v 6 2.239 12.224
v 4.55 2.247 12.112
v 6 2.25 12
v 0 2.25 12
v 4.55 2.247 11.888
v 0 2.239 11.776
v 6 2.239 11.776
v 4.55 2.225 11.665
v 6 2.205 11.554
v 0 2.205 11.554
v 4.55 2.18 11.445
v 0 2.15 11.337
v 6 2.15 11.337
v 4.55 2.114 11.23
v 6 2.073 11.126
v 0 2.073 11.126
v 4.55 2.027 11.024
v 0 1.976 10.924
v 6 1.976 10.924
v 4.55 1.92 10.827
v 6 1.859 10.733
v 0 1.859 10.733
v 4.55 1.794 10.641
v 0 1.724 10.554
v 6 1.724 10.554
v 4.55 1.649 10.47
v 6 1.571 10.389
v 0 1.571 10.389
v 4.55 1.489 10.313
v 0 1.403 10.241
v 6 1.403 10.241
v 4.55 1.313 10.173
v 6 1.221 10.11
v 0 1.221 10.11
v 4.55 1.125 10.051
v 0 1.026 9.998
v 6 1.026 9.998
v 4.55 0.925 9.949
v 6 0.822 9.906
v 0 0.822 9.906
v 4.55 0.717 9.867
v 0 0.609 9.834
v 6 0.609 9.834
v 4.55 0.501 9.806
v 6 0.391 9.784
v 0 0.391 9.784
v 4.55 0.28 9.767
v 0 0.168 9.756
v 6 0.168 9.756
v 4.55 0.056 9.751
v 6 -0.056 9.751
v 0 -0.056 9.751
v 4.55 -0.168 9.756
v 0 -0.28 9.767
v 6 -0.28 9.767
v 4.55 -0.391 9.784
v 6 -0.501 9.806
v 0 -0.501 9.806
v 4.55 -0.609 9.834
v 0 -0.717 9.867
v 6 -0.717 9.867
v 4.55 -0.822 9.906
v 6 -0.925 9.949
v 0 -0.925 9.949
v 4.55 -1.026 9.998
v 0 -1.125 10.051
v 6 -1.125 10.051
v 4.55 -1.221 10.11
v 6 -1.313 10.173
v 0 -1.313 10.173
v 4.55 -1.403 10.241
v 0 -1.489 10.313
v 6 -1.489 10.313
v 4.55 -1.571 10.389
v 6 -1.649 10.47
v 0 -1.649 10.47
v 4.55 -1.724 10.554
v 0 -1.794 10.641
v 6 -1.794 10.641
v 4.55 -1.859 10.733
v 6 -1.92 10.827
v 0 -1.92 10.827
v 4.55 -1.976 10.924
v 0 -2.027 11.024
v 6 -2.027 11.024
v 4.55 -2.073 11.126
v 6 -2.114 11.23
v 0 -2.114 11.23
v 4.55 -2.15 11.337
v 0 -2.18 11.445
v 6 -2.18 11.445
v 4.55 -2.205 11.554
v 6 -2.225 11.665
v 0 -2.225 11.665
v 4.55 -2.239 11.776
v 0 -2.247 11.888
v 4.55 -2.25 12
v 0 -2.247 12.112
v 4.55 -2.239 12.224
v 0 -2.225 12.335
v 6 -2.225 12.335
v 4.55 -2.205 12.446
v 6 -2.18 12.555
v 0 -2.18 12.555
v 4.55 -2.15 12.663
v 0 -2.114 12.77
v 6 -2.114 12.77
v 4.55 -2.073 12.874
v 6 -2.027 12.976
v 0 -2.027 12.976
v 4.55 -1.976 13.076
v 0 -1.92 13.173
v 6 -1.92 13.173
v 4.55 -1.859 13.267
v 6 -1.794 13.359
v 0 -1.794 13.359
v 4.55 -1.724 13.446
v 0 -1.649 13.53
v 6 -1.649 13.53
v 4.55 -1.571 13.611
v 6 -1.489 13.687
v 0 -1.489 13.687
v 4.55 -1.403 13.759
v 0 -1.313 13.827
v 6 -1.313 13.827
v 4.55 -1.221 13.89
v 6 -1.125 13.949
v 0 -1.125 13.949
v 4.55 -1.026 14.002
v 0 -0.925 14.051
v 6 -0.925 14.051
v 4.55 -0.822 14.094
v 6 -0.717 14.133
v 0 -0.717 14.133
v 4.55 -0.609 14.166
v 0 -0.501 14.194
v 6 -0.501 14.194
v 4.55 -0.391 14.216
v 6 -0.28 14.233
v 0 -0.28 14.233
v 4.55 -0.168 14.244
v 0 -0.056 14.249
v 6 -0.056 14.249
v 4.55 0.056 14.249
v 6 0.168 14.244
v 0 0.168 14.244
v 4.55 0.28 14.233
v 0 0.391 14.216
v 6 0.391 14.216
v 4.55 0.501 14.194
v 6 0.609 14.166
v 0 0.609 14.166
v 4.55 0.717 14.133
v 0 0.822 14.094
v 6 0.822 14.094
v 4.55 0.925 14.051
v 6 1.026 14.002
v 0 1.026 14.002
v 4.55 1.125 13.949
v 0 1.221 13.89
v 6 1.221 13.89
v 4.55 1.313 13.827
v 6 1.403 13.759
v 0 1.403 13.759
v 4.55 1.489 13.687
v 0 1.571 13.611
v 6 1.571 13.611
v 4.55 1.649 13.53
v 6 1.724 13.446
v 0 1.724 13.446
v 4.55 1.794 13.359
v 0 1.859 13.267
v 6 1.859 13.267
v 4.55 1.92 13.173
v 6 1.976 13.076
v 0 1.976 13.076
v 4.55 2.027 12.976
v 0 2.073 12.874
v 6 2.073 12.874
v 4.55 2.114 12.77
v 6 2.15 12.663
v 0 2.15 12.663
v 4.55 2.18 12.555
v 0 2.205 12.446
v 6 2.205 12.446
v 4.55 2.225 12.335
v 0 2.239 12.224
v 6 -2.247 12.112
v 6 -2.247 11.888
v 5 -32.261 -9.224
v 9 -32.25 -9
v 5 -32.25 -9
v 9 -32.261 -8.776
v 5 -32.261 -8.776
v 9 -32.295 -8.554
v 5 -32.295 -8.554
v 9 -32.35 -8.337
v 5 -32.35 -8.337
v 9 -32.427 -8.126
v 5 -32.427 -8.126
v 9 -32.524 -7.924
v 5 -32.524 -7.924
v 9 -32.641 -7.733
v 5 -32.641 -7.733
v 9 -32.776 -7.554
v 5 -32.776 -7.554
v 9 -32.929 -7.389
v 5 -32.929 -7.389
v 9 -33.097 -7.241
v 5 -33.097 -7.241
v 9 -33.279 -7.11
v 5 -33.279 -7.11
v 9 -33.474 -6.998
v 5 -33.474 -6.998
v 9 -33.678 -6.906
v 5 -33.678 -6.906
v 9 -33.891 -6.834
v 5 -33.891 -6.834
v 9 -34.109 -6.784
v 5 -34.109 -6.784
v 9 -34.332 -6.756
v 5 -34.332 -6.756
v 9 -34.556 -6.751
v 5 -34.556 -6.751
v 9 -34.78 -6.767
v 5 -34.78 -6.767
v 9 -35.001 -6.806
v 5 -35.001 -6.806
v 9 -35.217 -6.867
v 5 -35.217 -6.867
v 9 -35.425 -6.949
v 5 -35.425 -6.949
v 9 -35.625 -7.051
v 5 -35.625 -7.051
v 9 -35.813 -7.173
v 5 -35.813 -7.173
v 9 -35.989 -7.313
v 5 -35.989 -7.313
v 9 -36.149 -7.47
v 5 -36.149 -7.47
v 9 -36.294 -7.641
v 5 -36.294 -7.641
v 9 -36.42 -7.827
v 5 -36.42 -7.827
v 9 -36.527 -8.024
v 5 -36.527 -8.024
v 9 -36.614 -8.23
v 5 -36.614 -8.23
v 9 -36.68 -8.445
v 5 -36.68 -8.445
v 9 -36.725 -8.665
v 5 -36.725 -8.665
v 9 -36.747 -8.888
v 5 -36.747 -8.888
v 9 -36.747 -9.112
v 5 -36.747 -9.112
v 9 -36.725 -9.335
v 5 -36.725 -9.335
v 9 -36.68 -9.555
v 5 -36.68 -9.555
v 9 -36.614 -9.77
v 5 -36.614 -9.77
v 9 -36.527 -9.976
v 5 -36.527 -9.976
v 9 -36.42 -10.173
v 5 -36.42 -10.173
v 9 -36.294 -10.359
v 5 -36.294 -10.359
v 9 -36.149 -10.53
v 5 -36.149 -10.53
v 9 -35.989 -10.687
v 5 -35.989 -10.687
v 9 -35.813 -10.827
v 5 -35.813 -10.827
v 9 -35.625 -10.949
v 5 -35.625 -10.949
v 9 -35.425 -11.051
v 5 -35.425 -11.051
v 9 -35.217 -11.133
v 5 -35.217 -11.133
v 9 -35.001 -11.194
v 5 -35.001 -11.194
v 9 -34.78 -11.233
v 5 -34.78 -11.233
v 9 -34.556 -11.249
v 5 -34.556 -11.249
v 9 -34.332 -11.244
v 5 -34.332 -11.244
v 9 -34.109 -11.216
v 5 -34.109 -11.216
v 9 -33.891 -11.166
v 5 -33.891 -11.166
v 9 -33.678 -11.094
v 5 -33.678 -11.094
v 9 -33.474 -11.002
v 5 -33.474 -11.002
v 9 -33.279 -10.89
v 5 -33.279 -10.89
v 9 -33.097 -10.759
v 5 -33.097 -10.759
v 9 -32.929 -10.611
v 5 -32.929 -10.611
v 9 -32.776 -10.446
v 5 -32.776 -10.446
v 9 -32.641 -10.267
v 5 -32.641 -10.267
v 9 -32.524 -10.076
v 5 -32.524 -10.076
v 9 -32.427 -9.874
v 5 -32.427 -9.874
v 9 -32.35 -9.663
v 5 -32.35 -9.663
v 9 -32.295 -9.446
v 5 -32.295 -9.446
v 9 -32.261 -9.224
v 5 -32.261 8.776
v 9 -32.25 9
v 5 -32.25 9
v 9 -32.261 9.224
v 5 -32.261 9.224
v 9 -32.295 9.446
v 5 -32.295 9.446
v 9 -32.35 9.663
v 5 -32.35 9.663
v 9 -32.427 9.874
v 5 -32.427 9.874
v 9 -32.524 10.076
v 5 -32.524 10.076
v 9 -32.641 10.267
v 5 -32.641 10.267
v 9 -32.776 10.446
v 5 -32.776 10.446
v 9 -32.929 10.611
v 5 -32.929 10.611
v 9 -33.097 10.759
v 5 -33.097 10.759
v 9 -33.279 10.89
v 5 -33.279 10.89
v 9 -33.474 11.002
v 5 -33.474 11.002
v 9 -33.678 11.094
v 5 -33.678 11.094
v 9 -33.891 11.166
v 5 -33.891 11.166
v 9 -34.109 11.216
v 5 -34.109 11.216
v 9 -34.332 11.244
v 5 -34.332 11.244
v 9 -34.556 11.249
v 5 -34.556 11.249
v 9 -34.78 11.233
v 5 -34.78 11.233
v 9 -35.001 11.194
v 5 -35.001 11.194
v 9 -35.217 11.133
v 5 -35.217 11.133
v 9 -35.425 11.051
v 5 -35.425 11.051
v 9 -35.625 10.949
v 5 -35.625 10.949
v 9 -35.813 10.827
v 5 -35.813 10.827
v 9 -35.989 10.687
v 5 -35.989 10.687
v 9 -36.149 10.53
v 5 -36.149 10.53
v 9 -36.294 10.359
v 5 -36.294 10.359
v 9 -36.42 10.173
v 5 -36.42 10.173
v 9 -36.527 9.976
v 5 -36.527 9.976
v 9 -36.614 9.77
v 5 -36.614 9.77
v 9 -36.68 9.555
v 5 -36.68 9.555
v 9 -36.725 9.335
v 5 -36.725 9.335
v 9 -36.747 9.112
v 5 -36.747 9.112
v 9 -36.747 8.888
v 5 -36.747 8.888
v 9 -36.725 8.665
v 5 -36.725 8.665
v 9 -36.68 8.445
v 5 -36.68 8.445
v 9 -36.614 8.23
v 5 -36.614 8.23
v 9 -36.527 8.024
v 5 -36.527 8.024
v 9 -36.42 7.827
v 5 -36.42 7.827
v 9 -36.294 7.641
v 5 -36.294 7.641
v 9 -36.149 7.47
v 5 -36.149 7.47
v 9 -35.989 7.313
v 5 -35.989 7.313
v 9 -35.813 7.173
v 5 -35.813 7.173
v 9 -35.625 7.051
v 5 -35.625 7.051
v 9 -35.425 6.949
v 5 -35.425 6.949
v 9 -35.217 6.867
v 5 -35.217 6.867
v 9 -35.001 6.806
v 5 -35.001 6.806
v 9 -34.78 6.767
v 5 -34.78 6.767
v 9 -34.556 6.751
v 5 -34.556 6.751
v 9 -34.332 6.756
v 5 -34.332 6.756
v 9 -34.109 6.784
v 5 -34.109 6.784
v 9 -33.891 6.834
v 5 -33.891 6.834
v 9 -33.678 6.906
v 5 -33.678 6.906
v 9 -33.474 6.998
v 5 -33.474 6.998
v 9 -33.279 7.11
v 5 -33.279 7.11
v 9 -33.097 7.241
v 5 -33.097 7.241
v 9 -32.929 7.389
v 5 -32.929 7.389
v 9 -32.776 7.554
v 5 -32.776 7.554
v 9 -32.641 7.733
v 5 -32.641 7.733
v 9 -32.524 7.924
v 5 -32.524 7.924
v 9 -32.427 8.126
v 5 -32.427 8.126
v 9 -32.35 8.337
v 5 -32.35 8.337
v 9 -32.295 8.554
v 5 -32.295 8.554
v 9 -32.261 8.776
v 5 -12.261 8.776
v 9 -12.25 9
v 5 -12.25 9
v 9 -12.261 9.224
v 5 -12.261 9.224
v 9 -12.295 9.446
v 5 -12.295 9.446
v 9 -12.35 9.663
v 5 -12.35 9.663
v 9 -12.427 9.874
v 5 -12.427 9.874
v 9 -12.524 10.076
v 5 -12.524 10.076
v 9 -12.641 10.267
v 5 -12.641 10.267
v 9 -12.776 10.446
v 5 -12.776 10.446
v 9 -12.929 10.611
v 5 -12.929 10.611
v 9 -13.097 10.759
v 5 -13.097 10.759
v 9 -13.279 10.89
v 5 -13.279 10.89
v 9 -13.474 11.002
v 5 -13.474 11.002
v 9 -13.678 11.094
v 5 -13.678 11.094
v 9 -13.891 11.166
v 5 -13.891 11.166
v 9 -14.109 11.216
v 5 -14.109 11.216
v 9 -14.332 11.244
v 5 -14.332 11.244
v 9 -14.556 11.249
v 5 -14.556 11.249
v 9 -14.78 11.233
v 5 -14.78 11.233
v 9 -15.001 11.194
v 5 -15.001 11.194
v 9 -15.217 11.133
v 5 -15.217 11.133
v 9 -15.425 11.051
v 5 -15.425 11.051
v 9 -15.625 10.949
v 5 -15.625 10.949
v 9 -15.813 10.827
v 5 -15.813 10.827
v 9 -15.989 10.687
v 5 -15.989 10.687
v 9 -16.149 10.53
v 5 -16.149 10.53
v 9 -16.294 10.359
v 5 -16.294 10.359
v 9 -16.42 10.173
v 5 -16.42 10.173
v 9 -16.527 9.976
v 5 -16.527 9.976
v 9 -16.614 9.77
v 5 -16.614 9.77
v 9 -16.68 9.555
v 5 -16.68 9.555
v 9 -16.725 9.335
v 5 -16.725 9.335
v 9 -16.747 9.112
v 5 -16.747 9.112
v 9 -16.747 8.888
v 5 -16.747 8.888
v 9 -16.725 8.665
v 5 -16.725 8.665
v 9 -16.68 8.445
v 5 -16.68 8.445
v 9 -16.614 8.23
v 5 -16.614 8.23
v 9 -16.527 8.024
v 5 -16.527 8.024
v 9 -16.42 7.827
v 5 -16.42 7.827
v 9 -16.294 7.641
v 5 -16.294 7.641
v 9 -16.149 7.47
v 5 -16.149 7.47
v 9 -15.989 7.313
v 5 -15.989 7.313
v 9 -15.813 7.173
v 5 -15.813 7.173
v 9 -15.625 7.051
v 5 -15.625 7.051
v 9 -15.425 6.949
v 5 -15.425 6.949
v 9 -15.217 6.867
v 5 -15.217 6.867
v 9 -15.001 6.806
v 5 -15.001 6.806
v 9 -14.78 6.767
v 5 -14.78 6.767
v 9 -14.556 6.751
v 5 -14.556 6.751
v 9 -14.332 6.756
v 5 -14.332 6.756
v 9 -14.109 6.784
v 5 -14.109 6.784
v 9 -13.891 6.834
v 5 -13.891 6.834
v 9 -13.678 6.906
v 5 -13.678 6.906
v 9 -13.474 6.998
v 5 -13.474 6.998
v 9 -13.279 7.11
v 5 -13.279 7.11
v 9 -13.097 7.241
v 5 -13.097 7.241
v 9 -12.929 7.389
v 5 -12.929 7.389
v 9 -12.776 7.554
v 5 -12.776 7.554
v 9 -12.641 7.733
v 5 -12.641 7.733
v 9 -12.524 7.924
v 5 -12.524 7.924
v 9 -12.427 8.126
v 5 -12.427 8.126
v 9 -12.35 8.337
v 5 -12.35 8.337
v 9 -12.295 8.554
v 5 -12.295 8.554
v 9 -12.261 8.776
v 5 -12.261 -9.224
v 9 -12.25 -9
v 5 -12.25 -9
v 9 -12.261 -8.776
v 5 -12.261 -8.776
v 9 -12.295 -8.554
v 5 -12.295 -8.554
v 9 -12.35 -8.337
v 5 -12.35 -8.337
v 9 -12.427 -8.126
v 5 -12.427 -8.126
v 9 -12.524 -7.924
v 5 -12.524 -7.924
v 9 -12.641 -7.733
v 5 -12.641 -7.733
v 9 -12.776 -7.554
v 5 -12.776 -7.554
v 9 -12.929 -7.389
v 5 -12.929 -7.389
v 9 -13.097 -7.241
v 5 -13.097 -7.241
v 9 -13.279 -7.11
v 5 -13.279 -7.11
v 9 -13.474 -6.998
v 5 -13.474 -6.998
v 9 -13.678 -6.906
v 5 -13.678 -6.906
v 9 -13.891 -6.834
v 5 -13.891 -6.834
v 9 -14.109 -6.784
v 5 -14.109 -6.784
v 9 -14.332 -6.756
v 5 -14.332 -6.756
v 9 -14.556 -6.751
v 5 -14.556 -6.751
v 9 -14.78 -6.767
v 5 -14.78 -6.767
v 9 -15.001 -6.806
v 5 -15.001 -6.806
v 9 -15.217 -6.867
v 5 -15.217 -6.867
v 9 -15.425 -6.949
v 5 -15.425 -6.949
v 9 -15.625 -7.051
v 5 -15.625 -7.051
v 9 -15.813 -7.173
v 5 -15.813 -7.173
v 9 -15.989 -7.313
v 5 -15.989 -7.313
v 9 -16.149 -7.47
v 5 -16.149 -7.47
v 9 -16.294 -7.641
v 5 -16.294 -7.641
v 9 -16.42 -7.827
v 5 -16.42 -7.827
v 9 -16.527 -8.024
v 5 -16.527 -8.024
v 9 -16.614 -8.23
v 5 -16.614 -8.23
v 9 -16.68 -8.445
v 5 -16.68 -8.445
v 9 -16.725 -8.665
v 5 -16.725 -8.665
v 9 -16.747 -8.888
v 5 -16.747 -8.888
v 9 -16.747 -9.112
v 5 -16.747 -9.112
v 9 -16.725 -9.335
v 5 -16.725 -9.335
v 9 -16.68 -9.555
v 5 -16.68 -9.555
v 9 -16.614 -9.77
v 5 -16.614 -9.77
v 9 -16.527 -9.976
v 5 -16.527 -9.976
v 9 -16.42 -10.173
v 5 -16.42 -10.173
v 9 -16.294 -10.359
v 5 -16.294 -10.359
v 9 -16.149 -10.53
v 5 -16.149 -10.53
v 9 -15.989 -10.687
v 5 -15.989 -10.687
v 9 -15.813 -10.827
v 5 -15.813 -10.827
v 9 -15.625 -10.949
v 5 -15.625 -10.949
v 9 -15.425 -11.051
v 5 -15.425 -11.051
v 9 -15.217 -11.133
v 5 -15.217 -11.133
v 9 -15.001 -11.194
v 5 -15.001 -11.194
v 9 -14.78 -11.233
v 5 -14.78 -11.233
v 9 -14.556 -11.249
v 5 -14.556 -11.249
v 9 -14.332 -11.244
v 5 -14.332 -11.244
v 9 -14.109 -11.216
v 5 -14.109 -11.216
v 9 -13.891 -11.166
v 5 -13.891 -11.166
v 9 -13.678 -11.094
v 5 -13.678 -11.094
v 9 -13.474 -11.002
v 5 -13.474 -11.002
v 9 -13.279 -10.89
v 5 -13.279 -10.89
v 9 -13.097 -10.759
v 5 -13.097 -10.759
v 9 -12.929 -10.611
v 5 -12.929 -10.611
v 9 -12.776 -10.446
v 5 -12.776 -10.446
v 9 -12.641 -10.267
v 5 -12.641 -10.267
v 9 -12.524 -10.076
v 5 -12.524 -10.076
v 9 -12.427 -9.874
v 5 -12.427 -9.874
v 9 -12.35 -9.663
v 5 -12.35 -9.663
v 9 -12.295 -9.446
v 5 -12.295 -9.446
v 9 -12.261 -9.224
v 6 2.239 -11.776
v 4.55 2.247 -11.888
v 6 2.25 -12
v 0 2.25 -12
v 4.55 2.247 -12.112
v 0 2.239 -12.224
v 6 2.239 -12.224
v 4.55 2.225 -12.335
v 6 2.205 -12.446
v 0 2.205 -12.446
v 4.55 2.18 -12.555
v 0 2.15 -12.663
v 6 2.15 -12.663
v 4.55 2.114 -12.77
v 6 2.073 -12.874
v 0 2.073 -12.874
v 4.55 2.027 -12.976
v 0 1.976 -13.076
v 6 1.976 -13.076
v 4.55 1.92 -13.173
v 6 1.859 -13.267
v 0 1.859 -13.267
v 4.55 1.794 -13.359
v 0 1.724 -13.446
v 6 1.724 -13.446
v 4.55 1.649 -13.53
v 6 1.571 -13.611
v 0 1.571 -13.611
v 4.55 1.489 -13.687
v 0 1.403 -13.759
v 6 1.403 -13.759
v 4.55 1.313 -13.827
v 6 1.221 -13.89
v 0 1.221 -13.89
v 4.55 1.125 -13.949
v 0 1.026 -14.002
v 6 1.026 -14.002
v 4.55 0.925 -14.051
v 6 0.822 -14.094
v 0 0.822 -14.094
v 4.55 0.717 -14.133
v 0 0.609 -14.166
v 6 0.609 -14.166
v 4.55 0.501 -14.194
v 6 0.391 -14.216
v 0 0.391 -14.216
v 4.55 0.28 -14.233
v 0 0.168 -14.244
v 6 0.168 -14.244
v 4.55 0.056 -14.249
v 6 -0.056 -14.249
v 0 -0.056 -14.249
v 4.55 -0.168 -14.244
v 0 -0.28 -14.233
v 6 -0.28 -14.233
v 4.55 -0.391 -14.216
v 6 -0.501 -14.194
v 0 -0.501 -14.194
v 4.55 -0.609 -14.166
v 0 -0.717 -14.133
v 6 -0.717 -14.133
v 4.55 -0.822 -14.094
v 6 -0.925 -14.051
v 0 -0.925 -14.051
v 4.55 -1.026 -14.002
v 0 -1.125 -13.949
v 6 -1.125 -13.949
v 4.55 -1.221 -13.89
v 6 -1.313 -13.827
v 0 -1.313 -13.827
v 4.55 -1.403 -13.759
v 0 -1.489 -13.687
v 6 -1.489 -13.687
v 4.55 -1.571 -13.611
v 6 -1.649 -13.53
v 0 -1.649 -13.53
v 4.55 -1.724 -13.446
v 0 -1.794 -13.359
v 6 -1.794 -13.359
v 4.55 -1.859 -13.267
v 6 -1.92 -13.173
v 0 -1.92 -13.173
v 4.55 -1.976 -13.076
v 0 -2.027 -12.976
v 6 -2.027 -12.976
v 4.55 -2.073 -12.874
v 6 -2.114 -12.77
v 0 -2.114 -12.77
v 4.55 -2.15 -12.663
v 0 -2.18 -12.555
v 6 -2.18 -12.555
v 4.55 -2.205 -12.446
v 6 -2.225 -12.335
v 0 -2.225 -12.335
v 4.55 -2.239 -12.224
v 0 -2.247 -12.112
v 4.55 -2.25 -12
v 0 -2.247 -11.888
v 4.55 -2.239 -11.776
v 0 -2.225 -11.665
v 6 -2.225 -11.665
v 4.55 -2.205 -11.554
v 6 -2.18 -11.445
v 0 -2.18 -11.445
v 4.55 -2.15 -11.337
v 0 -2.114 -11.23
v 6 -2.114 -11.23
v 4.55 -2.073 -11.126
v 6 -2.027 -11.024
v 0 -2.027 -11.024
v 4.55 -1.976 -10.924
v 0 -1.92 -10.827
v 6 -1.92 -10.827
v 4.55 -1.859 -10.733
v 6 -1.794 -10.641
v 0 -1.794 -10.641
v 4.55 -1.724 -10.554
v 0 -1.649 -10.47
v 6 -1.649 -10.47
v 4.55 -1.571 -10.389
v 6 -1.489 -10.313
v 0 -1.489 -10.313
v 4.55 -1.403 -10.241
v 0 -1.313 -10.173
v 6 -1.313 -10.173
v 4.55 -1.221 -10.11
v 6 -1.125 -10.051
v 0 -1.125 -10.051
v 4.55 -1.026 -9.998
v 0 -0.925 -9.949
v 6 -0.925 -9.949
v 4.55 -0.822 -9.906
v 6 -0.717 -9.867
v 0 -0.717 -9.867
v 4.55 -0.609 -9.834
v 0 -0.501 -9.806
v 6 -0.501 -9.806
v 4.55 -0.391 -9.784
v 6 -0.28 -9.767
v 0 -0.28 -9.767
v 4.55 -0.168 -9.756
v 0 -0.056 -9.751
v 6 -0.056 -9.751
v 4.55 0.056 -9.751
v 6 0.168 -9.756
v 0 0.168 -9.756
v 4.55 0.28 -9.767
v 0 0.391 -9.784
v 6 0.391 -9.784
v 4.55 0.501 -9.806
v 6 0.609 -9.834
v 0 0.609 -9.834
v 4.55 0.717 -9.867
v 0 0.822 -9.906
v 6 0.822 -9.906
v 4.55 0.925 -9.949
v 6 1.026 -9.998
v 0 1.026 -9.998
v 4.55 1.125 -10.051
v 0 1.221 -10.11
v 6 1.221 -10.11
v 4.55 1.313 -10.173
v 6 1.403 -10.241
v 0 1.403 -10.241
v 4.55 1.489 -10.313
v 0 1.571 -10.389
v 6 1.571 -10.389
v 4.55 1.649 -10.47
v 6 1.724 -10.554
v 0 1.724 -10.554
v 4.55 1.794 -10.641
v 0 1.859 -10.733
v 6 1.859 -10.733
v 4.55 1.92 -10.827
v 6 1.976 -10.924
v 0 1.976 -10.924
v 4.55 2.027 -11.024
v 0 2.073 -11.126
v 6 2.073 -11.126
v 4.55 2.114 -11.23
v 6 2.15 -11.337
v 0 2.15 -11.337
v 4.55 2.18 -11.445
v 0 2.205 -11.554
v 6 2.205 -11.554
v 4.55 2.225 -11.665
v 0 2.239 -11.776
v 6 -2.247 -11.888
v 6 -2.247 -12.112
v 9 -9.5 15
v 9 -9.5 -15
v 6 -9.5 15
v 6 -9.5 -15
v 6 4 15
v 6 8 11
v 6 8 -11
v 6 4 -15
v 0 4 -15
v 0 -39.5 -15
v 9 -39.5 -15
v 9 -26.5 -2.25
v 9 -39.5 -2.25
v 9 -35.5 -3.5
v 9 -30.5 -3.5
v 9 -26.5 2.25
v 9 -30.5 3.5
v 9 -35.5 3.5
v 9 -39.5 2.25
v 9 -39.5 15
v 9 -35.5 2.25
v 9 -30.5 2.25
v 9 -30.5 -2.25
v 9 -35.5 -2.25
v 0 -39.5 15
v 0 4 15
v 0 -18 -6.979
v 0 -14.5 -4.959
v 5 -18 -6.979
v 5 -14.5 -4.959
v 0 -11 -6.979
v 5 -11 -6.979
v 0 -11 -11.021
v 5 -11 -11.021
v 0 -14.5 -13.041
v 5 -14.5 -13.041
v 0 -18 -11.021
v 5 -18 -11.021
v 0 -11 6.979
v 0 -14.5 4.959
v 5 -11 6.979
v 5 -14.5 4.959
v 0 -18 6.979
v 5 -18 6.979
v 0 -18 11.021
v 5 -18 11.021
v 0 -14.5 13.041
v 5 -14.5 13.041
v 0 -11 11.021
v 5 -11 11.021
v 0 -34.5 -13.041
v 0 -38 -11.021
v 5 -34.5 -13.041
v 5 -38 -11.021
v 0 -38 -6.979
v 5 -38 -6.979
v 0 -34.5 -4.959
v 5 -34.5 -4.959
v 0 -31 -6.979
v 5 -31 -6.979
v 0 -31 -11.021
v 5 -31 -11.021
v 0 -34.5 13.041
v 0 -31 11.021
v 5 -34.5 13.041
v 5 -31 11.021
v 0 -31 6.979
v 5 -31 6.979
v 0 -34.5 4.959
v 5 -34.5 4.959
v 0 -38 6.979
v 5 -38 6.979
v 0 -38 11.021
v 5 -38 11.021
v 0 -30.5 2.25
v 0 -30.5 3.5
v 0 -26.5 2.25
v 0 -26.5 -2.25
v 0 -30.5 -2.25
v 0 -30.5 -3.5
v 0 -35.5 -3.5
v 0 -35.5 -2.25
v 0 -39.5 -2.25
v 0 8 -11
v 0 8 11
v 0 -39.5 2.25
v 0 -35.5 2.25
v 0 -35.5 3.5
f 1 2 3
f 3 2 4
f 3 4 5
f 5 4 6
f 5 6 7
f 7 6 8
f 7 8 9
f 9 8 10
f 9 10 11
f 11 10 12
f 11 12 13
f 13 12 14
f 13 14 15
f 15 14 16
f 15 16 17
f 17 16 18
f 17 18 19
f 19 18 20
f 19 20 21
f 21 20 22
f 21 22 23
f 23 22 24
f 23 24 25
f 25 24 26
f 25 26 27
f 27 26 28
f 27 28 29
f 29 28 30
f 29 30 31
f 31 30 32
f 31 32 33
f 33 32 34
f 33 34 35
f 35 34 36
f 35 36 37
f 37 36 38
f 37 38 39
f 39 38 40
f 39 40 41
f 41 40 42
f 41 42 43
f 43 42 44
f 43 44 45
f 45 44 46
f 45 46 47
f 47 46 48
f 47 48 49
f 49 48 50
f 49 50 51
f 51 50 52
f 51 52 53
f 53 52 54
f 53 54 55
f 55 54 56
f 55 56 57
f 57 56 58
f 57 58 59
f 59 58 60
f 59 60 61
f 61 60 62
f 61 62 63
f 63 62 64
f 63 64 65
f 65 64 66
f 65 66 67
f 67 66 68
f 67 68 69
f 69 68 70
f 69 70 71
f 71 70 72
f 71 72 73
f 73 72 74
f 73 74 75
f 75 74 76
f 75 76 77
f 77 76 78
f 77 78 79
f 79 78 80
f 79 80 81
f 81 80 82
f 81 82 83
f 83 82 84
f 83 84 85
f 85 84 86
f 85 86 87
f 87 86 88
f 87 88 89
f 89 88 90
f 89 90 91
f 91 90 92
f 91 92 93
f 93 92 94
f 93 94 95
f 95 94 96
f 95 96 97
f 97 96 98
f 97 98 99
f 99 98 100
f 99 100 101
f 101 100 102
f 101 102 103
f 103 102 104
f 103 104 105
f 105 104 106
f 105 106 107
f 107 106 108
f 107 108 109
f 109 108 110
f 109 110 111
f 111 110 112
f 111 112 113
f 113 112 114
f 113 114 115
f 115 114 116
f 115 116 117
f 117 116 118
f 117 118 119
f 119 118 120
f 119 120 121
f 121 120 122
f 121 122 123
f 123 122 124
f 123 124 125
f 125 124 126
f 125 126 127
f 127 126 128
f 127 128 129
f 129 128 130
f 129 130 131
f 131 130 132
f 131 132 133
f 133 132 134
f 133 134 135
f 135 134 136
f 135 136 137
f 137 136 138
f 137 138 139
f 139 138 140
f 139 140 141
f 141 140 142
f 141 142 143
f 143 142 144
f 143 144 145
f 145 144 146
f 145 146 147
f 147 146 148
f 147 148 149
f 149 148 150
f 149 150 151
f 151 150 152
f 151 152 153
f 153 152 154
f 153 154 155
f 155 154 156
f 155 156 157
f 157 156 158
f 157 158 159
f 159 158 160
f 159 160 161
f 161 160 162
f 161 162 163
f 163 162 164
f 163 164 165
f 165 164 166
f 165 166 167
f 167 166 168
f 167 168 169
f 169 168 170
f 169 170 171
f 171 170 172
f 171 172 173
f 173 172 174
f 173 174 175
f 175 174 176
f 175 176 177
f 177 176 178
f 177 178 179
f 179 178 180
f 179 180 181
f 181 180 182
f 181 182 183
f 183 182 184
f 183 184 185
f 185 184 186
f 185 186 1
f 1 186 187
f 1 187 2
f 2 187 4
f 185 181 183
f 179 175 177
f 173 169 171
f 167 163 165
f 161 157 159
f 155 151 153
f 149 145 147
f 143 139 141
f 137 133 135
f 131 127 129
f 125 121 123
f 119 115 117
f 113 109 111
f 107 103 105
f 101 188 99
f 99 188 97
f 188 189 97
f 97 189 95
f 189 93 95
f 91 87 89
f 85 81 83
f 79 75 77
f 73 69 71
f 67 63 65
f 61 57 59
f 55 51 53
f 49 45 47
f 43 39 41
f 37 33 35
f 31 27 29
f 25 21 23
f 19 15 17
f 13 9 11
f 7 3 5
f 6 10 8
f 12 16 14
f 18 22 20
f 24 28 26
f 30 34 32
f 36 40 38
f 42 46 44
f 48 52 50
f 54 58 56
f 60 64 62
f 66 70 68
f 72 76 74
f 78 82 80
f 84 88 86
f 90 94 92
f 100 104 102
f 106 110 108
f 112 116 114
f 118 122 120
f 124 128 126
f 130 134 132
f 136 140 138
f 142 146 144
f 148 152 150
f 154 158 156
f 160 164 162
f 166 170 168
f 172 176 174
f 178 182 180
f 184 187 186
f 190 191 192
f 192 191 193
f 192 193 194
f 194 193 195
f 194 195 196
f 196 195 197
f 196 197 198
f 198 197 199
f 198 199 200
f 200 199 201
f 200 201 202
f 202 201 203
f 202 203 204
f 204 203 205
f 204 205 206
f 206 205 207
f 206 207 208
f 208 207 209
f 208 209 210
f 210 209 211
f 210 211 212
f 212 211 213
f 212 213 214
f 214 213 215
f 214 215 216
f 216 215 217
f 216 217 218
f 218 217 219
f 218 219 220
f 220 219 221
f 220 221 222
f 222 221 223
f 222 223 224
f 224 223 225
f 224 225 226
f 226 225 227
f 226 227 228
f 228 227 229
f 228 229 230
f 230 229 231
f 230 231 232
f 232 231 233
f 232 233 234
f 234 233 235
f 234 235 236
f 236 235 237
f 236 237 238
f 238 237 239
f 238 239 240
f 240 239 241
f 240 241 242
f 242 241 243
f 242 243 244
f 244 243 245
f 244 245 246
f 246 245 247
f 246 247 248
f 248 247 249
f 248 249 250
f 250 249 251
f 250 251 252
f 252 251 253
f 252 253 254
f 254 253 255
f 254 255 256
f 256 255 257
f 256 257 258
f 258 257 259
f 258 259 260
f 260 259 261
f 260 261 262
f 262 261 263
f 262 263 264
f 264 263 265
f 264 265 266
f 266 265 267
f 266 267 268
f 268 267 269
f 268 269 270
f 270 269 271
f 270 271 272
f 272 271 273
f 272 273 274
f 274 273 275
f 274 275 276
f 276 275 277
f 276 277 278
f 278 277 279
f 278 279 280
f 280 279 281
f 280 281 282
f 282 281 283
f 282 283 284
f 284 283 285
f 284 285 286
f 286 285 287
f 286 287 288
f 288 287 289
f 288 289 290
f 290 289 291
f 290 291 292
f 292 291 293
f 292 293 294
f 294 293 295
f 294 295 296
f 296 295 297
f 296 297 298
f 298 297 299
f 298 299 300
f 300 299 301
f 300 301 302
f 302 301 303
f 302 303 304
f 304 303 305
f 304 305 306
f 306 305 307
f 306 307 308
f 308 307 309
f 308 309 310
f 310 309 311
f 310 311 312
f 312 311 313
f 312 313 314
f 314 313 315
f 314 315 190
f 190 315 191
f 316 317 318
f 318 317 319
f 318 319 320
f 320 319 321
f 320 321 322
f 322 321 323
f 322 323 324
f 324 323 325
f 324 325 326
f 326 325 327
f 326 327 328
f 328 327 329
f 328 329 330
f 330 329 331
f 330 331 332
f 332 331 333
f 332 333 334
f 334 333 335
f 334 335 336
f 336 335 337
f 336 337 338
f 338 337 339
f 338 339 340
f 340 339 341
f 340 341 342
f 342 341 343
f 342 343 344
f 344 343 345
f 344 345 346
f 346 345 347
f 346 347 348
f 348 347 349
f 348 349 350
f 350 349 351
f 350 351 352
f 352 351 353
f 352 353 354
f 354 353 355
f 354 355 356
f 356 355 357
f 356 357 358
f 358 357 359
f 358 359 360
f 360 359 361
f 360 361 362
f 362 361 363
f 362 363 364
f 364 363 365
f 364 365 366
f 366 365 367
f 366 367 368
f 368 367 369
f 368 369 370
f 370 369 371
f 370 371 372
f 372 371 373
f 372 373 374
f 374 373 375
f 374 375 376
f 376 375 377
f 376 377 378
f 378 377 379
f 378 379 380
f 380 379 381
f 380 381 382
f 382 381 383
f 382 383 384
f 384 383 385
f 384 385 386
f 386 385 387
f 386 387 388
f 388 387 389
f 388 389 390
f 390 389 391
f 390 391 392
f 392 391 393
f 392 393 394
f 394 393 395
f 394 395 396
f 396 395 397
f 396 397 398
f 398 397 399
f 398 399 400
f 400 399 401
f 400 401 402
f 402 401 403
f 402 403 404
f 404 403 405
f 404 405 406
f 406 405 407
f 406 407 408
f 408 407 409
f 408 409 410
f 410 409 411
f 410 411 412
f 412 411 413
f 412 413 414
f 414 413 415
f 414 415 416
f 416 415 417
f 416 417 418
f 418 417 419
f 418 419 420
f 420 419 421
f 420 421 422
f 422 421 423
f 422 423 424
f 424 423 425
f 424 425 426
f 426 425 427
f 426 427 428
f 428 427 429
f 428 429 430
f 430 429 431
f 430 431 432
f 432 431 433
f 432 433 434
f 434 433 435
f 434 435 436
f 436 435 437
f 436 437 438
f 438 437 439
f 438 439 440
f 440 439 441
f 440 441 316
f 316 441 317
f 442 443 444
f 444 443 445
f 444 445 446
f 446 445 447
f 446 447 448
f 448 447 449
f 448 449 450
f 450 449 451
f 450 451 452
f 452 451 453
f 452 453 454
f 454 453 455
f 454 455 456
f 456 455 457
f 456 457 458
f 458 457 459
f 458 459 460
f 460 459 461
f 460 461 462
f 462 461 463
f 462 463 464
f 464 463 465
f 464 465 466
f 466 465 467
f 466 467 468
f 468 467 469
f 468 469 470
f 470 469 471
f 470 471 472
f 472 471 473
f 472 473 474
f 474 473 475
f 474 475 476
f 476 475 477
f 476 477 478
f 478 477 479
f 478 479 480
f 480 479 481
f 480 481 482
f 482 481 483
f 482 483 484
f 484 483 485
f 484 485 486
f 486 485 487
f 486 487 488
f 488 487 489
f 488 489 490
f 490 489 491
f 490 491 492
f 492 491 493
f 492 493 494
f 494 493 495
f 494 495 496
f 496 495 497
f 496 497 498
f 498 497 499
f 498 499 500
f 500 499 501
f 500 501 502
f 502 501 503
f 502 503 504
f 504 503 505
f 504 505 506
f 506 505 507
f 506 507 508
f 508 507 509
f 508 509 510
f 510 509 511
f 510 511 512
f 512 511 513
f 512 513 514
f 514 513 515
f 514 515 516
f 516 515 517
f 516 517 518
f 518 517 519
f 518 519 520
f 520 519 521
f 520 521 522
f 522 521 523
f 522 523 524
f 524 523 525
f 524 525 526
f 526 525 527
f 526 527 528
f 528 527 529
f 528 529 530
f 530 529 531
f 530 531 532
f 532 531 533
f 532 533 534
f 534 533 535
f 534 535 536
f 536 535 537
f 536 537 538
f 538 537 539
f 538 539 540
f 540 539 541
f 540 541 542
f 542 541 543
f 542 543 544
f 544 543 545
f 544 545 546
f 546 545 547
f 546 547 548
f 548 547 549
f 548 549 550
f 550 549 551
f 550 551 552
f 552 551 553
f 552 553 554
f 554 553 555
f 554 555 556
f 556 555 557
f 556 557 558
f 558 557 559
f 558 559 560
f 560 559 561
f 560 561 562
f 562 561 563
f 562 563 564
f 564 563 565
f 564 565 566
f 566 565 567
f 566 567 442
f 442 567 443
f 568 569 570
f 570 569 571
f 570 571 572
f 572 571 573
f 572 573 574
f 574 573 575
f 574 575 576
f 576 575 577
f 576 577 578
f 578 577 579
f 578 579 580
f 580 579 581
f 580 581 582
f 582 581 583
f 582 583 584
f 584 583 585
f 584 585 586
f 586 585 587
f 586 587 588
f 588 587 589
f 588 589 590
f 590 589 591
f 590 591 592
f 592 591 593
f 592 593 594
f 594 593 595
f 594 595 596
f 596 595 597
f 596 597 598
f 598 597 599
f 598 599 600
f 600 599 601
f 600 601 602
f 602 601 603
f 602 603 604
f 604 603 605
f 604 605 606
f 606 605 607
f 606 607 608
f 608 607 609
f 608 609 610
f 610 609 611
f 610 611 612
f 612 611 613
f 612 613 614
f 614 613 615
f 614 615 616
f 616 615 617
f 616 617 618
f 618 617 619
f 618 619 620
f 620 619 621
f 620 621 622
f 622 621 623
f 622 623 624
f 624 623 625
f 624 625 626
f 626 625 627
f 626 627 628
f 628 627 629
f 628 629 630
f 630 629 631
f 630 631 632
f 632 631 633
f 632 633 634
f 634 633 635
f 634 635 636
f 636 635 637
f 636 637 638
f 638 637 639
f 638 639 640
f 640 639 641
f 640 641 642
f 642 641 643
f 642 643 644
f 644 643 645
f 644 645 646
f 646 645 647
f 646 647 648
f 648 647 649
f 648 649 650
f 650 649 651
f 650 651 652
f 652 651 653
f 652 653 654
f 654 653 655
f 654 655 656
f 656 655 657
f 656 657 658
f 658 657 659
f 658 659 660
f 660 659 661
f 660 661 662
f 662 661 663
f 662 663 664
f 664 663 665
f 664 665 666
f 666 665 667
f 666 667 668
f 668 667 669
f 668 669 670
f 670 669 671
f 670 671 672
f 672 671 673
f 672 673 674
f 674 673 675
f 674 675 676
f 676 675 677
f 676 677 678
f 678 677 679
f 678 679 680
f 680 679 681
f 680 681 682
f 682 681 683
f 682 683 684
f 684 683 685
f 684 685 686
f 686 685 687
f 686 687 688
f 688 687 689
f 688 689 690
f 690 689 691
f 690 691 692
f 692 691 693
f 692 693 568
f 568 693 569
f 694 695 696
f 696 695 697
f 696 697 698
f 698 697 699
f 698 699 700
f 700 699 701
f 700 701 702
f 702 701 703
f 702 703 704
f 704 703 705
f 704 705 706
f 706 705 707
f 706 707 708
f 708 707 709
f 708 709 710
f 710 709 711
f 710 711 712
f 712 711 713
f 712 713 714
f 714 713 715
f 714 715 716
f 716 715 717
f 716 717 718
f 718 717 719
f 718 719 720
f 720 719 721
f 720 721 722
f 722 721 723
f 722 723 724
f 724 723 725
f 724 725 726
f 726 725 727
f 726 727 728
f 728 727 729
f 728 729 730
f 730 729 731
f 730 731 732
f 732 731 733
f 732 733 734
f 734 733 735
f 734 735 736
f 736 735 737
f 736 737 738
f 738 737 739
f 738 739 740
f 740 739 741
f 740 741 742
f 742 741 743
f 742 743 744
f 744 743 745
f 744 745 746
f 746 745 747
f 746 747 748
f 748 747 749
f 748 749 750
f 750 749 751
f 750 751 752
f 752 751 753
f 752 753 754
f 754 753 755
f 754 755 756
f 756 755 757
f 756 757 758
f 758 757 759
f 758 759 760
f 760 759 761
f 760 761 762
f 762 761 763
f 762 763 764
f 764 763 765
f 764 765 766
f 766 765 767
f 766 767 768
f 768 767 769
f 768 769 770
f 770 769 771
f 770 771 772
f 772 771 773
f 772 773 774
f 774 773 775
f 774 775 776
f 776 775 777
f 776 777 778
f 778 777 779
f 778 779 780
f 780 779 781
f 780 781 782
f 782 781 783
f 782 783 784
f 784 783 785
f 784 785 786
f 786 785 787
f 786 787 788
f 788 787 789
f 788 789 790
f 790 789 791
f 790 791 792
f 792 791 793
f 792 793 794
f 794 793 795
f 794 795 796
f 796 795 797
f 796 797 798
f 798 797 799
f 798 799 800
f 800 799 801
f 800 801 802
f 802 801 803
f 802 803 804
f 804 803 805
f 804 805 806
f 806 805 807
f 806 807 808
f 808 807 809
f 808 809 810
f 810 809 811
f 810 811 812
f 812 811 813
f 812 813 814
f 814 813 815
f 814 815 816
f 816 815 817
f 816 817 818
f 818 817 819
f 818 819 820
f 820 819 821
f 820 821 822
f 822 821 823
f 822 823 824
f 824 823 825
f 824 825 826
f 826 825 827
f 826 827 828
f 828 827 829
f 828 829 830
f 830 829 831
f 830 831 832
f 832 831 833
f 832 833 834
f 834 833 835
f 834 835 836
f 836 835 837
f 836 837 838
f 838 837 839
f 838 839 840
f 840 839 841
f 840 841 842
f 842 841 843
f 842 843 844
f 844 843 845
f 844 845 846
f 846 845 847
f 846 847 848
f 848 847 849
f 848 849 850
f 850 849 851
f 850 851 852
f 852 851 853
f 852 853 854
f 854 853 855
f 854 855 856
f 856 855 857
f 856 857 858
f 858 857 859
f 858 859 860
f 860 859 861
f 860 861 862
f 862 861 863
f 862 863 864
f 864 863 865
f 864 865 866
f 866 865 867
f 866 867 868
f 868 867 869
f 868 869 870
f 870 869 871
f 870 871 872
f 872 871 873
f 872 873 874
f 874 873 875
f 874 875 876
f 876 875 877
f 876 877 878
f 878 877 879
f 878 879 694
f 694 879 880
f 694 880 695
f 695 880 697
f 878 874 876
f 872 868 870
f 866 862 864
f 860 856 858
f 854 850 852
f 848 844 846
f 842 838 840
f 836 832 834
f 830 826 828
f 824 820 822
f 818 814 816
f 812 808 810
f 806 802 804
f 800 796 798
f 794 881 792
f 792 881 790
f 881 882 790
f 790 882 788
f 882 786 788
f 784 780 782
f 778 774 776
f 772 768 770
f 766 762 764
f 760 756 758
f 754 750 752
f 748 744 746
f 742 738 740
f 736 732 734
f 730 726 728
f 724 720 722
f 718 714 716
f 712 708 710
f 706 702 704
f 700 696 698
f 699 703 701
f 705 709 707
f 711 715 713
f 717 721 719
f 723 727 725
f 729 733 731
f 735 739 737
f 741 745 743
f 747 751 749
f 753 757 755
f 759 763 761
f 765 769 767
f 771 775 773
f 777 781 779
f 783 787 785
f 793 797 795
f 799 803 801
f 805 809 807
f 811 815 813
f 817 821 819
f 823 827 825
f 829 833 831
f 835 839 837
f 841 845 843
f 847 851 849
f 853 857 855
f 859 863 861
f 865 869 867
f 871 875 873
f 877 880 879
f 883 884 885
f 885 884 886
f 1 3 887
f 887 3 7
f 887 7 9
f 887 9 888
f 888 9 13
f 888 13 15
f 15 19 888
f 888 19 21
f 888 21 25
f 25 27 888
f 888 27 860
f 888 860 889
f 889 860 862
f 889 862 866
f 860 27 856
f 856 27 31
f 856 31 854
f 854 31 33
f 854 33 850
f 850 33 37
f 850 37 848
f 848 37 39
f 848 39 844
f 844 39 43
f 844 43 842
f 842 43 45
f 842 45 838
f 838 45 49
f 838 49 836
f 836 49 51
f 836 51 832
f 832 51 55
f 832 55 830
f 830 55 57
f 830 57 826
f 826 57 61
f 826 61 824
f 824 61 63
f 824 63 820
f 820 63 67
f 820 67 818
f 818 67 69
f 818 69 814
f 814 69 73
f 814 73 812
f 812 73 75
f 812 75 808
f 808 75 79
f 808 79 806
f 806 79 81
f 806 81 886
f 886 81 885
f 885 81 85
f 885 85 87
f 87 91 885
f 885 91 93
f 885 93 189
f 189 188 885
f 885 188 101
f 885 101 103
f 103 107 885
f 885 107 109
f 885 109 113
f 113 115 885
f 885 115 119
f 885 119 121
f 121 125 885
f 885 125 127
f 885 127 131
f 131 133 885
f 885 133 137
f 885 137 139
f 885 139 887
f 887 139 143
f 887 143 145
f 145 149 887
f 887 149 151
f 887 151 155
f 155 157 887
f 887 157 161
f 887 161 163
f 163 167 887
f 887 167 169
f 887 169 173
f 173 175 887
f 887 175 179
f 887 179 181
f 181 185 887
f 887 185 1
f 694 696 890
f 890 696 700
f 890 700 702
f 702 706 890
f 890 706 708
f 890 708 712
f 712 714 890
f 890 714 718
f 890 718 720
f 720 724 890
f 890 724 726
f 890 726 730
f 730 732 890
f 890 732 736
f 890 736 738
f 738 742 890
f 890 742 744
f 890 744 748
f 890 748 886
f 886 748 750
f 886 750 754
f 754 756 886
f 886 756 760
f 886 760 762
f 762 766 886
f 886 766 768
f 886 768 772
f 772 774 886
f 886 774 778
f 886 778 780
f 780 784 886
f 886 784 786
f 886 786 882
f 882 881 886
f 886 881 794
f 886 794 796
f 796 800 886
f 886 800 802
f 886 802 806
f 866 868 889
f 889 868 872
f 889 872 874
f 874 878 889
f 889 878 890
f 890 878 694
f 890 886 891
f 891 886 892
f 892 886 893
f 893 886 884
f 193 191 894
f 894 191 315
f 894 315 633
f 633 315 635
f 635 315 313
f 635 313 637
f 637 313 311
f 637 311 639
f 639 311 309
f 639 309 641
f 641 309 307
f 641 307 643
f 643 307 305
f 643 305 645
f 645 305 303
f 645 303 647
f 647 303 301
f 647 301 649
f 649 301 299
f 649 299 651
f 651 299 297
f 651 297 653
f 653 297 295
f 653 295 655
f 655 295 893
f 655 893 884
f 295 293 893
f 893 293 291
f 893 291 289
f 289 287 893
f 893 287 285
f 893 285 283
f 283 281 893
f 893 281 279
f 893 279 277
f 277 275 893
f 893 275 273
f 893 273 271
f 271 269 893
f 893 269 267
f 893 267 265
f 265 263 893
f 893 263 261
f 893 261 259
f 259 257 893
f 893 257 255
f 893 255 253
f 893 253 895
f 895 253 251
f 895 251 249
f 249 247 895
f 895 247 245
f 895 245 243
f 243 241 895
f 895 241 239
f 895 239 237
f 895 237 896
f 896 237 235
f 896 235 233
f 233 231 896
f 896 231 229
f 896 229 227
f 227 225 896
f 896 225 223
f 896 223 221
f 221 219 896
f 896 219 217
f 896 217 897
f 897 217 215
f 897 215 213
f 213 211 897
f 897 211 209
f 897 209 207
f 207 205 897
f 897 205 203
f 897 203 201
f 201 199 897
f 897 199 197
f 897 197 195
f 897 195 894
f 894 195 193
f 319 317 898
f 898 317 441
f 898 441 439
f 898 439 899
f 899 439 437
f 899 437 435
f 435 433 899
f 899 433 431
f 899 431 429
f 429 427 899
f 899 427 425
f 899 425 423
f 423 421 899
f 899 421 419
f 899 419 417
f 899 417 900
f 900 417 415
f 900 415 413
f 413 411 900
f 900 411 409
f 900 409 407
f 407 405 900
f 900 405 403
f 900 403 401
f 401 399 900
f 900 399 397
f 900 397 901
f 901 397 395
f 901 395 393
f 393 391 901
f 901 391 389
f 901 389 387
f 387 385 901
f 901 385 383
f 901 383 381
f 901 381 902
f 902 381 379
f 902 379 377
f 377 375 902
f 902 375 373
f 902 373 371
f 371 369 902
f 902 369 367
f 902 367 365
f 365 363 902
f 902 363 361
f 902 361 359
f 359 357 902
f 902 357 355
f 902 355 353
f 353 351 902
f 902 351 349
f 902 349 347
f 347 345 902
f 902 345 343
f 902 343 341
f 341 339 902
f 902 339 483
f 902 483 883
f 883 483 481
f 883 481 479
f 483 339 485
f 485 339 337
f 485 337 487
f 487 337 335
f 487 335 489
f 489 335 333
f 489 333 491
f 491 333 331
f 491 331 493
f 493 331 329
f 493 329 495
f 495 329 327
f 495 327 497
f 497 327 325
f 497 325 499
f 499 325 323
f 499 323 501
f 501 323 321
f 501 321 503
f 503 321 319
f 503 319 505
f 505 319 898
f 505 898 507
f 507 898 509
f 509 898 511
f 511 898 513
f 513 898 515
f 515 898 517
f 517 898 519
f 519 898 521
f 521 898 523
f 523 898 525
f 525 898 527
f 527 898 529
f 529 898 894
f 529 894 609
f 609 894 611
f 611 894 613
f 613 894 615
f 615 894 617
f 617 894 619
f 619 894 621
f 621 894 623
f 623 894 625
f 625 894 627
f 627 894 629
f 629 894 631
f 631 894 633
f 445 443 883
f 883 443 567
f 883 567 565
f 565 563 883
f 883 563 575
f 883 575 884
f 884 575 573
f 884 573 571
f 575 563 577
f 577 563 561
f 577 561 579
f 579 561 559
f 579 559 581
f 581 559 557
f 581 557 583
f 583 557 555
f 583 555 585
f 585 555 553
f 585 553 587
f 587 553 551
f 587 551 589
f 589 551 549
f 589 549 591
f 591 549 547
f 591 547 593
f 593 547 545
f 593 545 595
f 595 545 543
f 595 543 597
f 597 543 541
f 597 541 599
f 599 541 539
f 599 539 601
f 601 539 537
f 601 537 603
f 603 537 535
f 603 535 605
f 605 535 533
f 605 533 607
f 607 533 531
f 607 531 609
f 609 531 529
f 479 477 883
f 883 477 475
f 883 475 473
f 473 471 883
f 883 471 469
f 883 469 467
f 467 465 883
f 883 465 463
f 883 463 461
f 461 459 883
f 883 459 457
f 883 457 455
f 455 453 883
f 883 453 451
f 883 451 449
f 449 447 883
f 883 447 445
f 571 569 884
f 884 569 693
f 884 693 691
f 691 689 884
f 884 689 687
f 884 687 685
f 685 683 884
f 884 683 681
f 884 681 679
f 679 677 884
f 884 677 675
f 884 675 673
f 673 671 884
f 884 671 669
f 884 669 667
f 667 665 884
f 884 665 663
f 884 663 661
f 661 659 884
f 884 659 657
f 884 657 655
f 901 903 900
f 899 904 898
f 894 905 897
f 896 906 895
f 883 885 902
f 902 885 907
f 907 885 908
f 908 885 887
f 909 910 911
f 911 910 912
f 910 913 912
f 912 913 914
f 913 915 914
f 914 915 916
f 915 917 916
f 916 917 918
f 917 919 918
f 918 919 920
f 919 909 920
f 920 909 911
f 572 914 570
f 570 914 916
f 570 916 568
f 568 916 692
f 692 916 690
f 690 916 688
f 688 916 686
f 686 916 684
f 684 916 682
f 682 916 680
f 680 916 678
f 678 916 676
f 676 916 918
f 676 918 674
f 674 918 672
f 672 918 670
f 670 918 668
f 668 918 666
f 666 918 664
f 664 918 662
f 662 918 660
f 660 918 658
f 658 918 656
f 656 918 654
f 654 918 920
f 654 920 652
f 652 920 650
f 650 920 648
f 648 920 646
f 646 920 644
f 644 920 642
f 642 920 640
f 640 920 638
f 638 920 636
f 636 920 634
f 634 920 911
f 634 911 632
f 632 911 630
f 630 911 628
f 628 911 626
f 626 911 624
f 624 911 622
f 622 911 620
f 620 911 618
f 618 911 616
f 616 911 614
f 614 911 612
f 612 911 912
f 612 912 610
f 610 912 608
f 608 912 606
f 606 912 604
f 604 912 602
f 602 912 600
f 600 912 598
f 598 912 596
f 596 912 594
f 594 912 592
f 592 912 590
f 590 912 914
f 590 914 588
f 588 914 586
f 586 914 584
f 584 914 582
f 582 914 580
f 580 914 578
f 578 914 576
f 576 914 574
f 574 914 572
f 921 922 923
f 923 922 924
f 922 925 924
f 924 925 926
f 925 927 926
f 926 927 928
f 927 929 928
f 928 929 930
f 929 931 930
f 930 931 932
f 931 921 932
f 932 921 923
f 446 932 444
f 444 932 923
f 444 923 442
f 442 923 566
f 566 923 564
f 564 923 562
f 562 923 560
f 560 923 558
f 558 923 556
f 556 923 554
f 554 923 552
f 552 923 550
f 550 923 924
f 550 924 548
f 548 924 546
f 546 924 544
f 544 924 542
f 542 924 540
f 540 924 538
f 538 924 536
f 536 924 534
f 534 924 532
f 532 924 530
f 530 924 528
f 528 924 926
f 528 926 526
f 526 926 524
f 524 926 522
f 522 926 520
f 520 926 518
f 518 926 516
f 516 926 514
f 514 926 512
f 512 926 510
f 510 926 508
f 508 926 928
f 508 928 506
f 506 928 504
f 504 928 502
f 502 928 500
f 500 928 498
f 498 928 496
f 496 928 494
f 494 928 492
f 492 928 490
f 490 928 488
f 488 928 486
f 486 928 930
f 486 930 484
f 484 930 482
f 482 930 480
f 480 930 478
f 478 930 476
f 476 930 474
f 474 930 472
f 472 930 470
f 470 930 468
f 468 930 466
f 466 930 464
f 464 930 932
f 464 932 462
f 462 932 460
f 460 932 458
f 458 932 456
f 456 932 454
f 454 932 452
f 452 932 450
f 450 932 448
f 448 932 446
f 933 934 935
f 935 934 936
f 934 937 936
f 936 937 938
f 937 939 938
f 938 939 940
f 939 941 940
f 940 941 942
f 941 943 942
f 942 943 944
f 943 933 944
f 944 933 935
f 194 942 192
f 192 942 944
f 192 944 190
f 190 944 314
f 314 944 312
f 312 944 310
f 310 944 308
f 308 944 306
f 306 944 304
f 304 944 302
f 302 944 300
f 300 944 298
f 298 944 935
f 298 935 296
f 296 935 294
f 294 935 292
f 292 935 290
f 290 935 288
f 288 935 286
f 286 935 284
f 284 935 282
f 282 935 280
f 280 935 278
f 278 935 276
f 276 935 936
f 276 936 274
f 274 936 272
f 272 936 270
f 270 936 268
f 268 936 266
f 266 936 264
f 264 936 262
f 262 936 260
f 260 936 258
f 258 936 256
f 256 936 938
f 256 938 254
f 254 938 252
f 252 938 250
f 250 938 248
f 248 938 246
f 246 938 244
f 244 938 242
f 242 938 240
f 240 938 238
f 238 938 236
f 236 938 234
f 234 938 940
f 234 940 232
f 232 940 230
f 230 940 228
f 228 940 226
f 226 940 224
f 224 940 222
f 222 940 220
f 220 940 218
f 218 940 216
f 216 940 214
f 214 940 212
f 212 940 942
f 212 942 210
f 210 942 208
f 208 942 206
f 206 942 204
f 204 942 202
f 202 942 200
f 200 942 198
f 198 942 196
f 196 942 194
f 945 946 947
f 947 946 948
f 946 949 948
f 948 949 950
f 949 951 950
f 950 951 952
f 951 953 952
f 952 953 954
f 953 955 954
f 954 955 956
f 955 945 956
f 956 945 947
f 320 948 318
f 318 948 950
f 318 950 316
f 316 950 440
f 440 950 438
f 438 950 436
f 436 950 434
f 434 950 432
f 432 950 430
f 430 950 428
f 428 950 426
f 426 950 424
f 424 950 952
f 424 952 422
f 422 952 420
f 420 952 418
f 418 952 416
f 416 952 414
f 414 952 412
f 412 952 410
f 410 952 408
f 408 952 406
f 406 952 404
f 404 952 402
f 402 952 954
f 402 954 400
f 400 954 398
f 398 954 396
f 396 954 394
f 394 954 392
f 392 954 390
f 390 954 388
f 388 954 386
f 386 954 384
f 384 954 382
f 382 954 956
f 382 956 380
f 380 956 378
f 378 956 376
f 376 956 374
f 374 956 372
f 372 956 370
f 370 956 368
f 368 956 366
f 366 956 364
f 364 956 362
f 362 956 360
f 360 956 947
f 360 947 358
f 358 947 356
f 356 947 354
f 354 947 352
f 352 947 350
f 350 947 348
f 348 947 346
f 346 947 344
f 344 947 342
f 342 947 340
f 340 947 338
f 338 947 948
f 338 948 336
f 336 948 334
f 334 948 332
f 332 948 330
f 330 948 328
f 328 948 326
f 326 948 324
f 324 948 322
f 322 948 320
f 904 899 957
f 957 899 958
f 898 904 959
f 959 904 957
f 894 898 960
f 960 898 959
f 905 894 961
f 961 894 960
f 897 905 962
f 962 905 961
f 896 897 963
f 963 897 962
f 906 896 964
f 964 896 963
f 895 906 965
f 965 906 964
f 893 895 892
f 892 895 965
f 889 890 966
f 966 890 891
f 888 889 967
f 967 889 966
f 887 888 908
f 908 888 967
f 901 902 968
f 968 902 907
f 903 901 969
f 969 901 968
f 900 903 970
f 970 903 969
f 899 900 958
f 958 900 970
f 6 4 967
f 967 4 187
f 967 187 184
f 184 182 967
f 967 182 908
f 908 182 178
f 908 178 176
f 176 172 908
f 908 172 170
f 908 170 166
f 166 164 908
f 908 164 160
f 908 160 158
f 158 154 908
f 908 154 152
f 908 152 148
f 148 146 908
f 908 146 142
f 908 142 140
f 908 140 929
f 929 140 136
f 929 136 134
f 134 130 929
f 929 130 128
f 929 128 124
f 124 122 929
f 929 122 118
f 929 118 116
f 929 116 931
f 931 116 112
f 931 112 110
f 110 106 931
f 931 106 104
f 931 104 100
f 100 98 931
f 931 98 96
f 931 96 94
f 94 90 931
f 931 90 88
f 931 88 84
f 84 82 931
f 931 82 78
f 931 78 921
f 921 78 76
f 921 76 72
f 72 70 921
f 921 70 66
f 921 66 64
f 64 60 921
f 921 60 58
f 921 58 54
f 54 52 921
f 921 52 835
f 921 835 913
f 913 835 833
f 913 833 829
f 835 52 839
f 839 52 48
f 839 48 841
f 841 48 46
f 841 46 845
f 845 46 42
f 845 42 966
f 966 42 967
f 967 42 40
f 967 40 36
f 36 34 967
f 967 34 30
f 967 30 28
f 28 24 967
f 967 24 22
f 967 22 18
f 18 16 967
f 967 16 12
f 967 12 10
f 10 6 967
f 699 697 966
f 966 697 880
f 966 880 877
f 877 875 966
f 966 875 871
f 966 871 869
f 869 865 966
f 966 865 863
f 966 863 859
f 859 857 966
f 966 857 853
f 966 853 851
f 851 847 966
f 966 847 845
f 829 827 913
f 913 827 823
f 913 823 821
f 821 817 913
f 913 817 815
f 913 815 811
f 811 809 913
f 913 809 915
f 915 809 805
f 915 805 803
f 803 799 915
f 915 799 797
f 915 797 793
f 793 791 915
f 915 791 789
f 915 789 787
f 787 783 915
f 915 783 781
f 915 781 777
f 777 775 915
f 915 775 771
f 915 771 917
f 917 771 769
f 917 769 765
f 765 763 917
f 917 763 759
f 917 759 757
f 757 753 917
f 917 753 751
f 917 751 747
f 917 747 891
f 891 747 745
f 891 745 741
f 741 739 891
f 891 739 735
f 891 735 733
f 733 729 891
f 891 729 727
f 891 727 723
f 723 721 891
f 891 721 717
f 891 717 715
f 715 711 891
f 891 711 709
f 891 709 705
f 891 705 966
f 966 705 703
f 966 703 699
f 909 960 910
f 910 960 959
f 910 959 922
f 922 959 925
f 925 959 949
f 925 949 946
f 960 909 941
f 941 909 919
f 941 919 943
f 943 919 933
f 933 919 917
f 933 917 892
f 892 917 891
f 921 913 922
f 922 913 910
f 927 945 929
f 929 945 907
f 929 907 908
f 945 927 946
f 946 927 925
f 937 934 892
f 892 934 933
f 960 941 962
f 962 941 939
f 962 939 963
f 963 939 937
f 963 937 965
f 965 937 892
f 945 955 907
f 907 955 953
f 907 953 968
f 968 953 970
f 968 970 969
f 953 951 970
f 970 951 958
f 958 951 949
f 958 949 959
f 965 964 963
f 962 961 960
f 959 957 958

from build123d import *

# Parameters (mm, degrees)
SKETCH1_W           = 30
SKETCH1_H           = 47.5
BOSS_EXTRUDE1_DEPTH = 6
BOSS_EXTRUDE2_DEPTH = 30
BOSS_EXTRUDE3_DEPTH = 3
BOSS_EXTRUDE4_DEPTH = 12.5
SKETCH5_R           = 2.25
CUT_EXTRUDE1_DEPTH  = 49.106652347
SKETCH8_W           = 20
SKETCH8_H           = 15
CUT_EXTRUDE4_DEPTH  = 58.456505289
SKETCH9_R           = 2.25
CUT_EXTRUDE5_DEPTH  = 44.200115741
CUT_EXTRUDE6_DEPTH  = 5
CHAMFER1_SIZE       = 4
CUT_EXTRUDE7_DEPTH  = 44.200115741


with BuildPart() as part:
    # Sketch1 → Boss-Extrude1 (new body)
    with BuildSketch(Plane(origin=(0, 0, 0), x_dir=(0, 0, -1), z_dir=(1, 0, 0))):
        with Locations((0, -15.75)):
            Rectangle(SKETCH1_W, SKETCH1_H)
    extrude(amount=BOSS_EXTRUDE1_DEPTH)

    # Sketch2 → Boss-Extrude2 (add)
    with BuildSketch(Plane.XY.offset(15)):
        with BuildLine():
            Line((6, -39.5), (16.5, -39.5))
            Line((16.5, -39.5), (16.5, -32))
            ThreePointArc((16.5, -32), (11.196699141, -29.803300859), (9, -24.5))
            Line((9, -24.5), (9, -9.5))
            Line((9, -9.5), (6, -9.5))
            Line((6, -9.5), (6, -39.5))
        make_face()
    extrude(amount=-BOSS_EXTRUDE2_DEPTH)

    # Sketch3 → Boss-Extrude3 (add)
    with BuildSketch(Plane.XY.offset(15)):
        with BuildLine():
            Line((16.5, -29.5), (16.5, -32))
            ThreePointArc((16.5, -32), (11.196699141, -29.803300859), (9, -24.5))
            Line((9, -24.5), (11.5, -24.5))
            ThreePointArc((11.5, -24.5), (12.964466094, -28.035533906), (16.5, -29.5))
        make_face()
    boss_extrude3 = extrude(amount=-BOSS_EXTRUDE3_DEPTH)

    # Mirror1: Boss-Extrude3 across plane
    add(boss_extrude3.mirror(Plane.XY))

    # Sketch4 → Boss-Extrude4 (add)
    with BuildSketch(Plane(origin=(16.5, 0, 0), x_dir=(0, 0, -1), z_dir=(1, 0, 0))):
        Polygon((-12, -32), (12, -32), (12, -29.5), (15, -29.5), (15, -39.5), (-15, -39.5), (-15, -29.5), (-12, -29.5), align=None)
    extrude(amount=BOSS_EXTRUDE4_DEPTH)

    # Sketch5 → Cut-Extrude1 (cut, through all)
    with BuildSketch(Plane(origin=(6, 0, 0), x_dir=(0, 0, -1), z_dir=(1, 0, 0))):
        with Locations((-12, 0)):
            Circle(SKETCH5_R)
        with Locations((12, 0)):
            Circle(SKETCH5_R)
    extrude(amount=-CUT_EXTRUDE1_DEPTH, mode=Mode.SUBTRACT)

    # Sketch8 → Cut-Extrude4 (cut, through all)
    with BuildSketch(Plane.XY.offset(15)):
        with Locations((19, -32)):
            Rectangle(SKETCH8_W, SKETCH8_H)
    extrude(amount=-CUT_EXTRUDE4_DEPTH, mode=Mode.SUBTRACT)

    # Sketch9 → Cut-Extrude5 (cut, through all)
    with BuildSketch(Plane(origin=(9, 0, 0), x_dir=(0, 0, -1), z_dir=(1, 0, 0))):
        with Locations((-9, -14.5)):
            Circle(SKETCH9_R)
        with Locations((9, -14.5)):
            Circle(SKETCH9_R)
        with Locations((9, -34.5)):
            Circle(SKETCH9_R)
        with Locations((-9, -34.5)):
            Circle(SKETCH9_R)
    extrude(amount=-CUT_EXTRUDE5_DEPTH, mode=Mode.SUBTRACT)

    # Sketch10 → Cut-Extrude6 (cut)
    with BuildSketch(Plane.ZY):
        Polygon((-13.041451884, -14.5), (-11.020725942, -18), (-6.979274058, -18), (-4.958548116, -14.5), (-6.979274058, -11), (-11.020725942, -11), align=None)
        Polygon((4.958548116, -14.5), (6.979274058, -18), (11.020725942, -18), (13.041451884, -14.5), (11.020725942, -11), (6.979274058, -11), align=None)
        Polygon((4.958548116, -34.5), (6.979274058, -38), (11.020725942, -38), (13.041451884, -34.5), (11.020725942, -31), (6.979274058, -31), align=None)
        Polygon((-13.041451884, -34.5), (-11.020725942, -38), (-6.979274058, -38), (-4.958548116, -34.5), (-6.979274058, -31), (-11.020725942, -31), align=None)
    extrude(amount=-CUT_EXTRUDE6_DEPTH, mode=Mode.SUBTRACT)

    # Chamfer1
    chamfer1_edges = [part.edges().sort_by_distance(p)[0] for p in [
        (3, 8, -15),
        (3, 8, 15),
    ]]
    chamfer(chamfer1_edges, length=CHAMFER1_SIZE)

    # Sketch12 → Cut-Extrude7 (cut, through all)
    with BuildSketch(Plane(origin=(9, 0, 0), x_dir=(0, 0, -1), z_dir=(1, 0, 0))):
        Polygon((-2.25, -39.5), (2.25, -39.5), (2.25, -35.5), (3.5, -35.5), (3.5, -30.5), (2.25, -30.5), (2.25, -26.5), (-2.25, -26.5), (-2.25, -30.5), (-3.5, -30.5), (-3.5, -35.5), (-2.25, -35.5), align=None)
    extrude(amount=-CUT_EXTRUDE7_DEPTH, mode=Mode.SUBTRACT)


solid = part.part
